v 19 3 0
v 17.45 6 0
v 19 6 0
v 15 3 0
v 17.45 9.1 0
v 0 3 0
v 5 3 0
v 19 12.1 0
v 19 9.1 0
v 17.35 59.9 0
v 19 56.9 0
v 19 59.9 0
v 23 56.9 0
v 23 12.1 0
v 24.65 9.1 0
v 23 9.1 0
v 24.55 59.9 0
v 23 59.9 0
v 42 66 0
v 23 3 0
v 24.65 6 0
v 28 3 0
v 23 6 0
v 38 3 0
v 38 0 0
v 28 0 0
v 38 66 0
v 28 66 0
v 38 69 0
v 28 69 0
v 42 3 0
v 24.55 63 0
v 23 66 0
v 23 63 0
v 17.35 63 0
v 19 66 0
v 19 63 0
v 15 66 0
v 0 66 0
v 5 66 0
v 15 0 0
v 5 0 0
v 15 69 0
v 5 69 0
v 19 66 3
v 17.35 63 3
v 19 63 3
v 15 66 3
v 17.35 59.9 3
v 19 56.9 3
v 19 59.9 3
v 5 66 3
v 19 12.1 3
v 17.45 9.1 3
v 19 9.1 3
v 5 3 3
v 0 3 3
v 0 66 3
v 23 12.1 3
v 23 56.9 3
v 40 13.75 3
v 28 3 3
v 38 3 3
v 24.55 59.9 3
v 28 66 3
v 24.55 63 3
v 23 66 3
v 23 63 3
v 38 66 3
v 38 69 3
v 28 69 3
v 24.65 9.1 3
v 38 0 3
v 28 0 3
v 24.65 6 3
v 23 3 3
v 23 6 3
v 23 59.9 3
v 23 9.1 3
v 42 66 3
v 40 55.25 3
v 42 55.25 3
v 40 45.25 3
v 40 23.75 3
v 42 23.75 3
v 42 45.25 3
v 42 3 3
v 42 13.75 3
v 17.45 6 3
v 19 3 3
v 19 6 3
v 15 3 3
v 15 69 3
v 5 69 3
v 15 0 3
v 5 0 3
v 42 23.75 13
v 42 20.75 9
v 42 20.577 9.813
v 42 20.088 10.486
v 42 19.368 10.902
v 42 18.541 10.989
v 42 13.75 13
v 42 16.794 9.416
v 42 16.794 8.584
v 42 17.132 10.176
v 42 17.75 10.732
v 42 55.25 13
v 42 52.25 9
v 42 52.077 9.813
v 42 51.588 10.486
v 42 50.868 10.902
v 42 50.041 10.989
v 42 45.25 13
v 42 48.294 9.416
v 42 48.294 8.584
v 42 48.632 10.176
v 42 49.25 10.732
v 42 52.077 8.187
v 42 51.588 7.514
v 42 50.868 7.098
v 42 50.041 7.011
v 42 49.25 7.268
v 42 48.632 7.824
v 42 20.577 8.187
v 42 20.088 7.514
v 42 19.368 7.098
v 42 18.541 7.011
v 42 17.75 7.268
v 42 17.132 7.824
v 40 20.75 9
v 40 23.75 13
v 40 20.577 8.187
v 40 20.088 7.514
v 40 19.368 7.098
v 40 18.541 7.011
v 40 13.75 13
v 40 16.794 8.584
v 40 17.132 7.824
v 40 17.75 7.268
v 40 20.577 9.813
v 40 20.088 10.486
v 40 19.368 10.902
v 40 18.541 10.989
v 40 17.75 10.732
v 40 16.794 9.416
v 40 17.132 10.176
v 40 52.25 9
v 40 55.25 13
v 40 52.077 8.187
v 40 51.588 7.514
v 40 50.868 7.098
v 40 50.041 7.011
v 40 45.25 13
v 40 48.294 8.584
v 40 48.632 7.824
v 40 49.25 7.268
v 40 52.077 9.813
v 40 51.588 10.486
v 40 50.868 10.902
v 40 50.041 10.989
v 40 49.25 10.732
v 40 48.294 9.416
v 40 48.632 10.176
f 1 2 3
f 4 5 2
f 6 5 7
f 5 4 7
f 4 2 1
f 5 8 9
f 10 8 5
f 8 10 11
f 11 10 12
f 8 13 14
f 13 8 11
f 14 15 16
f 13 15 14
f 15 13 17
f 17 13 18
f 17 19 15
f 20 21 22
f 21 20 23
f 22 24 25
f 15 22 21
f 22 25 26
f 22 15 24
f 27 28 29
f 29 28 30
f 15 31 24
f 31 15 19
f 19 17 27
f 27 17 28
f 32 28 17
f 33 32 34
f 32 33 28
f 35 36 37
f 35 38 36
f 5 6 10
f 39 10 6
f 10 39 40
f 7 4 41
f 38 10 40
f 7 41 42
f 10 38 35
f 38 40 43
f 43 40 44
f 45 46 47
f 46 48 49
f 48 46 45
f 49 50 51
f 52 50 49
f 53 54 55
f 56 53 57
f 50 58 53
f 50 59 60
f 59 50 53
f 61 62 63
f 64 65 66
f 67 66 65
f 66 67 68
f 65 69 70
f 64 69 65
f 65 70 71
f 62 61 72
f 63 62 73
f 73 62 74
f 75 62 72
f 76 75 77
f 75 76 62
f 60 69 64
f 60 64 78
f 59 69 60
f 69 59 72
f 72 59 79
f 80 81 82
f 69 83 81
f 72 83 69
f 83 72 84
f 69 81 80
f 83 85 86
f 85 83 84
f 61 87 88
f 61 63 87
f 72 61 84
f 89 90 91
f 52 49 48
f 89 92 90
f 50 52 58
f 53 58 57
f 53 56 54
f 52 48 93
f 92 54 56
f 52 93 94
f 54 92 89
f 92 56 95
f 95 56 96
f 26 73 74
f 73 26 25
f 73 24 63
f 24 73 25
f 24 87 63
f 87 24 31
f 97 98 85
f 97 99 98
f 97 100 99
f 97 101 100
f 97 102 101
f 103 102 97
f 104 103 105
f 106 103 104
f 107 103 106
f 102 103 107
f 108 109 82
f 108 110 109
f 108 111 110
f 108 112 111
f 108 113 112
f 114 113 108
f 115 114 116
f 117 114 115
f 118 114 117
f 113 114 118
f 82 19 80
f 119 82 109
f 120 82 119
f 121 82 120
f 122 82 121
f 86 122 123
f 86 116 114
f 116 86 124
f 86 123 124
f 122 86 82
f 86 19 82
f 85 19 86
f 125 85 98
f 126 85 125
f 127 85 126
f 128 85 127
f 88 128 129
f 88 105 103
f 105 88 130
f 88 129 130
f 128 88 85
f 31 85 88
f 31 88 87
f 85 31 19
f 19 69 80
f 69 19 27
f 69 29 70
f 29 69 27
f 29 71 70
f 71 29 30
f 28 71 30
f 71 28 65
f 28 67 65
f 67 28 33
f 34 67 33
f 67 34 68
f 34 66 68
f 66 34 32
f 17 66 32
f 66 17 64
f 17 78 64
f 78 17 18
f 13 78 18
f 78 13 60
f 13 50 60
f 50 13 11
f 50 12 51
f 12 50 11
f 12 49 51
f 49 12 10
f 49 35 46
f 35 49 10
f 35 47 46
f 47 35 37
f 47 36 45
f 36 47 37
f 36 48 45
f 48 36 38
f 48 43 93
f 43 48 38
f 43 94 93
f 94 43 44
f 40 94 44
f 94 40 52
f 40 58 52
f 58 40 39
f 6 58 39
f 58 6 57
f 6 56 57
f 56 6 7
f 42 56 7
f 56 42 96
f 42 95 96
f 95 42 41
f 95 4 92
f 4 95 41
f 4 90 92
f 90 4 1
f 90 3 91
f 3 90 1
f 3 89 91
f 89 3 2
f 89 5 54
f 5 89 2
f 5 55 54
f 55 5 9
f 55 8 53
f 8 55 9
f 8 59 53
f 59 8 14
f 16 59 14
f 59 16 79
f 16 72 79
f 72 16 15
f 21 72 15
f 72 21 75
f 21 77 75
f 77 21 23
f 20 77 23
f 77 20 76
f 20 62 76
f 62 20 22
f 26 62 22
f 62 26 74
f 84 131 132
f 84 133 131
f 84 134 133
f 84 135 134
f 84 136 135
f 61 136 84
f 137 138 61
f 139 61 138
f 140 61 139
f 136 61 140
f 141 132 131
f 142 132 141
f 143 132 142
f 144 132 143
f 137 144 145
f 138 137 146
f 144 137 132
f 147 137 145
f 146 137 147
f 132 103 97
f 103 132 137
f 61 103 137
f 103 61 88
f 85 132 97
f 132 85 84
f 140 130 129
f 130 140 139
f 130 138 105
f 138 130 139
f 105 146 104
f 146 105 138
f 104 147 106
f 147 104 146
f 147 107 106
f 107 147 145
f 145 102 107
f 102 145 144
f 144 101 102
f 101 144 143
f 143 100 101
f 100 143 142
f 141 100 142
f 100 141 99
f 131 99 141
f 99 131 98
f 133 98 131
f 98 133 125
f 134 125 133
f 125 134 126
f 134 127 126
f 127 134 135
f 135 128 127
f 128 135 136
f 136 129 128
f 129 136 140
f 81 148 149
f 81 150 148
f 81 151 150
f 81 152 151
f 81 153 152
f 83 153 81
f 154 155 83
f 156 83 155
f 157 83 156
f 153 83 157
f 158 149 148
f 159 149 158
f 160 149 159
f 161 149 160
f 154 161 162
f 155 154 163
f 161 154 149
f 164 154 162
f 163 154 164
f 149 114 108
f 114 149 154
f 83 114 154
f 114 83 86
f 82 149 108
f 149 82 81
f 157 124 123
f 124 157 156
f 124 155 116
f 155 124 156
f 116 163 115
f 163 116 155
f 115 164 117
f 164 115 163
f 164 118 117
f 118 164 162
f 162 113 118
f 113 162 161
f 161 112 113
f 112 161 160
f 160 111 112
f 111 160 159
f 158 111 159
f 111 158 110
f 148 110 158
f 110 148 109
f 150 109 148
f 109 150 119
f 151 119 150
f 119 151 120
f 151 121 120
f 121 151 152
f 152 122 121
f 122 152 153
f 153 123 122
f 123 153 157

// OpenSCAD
module nut_hole() {
    // Shape for inserting the screw
    translate([-2, 0])
        square([4,3]);
    
    // Shape for the nut
    translate([-3.55,3])
        square([7.2,3.1]);
    
    // Space for screw past nut
    translate([-2, 6.1])
        square([4, 3]);
}

module squares() {
    // Main squares
    translate([0, 3])
        square([42,63]);
    
    // Tabs left
    translate([5,0])
        square([10,3]);
    
    translate([28,0])
        square([10,3]);
    
    // Tabs right
    translate([5,66])
        square([10,3]);
    
    translate([28,66])
        square([10,3]);
}

module top_2d() {
    
    difference() {
        // Primary Shape
        squares();
        
        // Screw/Nut hole left
        translate([21,3])
            nut_hole();
        
        // Screwn/Nut hole right
        translate([21,66])
            rotate([0,0,180]) {
                nut_hole();
            };
    }
}

module wood_mount_2d() {
    // screw hole mount for wood (one side)
    difference() {
        square([10,10]);
        
        translate([5, 6])
            circle(r=2, $fn=15);
    }
}

module top() {
    linear_extrude(3) {
        top_2d();
    };
    
    translate([40, 13.75, 3])
        rotate([90,0,90])
            linear_extrude(2)
                wood_mount_2d();
    
    translate([40, 45.25, 3])
        rotate([90,0,90])
            linear_extrude(2)
                wood_mount_2d();
}

top();
//nut_hole();
